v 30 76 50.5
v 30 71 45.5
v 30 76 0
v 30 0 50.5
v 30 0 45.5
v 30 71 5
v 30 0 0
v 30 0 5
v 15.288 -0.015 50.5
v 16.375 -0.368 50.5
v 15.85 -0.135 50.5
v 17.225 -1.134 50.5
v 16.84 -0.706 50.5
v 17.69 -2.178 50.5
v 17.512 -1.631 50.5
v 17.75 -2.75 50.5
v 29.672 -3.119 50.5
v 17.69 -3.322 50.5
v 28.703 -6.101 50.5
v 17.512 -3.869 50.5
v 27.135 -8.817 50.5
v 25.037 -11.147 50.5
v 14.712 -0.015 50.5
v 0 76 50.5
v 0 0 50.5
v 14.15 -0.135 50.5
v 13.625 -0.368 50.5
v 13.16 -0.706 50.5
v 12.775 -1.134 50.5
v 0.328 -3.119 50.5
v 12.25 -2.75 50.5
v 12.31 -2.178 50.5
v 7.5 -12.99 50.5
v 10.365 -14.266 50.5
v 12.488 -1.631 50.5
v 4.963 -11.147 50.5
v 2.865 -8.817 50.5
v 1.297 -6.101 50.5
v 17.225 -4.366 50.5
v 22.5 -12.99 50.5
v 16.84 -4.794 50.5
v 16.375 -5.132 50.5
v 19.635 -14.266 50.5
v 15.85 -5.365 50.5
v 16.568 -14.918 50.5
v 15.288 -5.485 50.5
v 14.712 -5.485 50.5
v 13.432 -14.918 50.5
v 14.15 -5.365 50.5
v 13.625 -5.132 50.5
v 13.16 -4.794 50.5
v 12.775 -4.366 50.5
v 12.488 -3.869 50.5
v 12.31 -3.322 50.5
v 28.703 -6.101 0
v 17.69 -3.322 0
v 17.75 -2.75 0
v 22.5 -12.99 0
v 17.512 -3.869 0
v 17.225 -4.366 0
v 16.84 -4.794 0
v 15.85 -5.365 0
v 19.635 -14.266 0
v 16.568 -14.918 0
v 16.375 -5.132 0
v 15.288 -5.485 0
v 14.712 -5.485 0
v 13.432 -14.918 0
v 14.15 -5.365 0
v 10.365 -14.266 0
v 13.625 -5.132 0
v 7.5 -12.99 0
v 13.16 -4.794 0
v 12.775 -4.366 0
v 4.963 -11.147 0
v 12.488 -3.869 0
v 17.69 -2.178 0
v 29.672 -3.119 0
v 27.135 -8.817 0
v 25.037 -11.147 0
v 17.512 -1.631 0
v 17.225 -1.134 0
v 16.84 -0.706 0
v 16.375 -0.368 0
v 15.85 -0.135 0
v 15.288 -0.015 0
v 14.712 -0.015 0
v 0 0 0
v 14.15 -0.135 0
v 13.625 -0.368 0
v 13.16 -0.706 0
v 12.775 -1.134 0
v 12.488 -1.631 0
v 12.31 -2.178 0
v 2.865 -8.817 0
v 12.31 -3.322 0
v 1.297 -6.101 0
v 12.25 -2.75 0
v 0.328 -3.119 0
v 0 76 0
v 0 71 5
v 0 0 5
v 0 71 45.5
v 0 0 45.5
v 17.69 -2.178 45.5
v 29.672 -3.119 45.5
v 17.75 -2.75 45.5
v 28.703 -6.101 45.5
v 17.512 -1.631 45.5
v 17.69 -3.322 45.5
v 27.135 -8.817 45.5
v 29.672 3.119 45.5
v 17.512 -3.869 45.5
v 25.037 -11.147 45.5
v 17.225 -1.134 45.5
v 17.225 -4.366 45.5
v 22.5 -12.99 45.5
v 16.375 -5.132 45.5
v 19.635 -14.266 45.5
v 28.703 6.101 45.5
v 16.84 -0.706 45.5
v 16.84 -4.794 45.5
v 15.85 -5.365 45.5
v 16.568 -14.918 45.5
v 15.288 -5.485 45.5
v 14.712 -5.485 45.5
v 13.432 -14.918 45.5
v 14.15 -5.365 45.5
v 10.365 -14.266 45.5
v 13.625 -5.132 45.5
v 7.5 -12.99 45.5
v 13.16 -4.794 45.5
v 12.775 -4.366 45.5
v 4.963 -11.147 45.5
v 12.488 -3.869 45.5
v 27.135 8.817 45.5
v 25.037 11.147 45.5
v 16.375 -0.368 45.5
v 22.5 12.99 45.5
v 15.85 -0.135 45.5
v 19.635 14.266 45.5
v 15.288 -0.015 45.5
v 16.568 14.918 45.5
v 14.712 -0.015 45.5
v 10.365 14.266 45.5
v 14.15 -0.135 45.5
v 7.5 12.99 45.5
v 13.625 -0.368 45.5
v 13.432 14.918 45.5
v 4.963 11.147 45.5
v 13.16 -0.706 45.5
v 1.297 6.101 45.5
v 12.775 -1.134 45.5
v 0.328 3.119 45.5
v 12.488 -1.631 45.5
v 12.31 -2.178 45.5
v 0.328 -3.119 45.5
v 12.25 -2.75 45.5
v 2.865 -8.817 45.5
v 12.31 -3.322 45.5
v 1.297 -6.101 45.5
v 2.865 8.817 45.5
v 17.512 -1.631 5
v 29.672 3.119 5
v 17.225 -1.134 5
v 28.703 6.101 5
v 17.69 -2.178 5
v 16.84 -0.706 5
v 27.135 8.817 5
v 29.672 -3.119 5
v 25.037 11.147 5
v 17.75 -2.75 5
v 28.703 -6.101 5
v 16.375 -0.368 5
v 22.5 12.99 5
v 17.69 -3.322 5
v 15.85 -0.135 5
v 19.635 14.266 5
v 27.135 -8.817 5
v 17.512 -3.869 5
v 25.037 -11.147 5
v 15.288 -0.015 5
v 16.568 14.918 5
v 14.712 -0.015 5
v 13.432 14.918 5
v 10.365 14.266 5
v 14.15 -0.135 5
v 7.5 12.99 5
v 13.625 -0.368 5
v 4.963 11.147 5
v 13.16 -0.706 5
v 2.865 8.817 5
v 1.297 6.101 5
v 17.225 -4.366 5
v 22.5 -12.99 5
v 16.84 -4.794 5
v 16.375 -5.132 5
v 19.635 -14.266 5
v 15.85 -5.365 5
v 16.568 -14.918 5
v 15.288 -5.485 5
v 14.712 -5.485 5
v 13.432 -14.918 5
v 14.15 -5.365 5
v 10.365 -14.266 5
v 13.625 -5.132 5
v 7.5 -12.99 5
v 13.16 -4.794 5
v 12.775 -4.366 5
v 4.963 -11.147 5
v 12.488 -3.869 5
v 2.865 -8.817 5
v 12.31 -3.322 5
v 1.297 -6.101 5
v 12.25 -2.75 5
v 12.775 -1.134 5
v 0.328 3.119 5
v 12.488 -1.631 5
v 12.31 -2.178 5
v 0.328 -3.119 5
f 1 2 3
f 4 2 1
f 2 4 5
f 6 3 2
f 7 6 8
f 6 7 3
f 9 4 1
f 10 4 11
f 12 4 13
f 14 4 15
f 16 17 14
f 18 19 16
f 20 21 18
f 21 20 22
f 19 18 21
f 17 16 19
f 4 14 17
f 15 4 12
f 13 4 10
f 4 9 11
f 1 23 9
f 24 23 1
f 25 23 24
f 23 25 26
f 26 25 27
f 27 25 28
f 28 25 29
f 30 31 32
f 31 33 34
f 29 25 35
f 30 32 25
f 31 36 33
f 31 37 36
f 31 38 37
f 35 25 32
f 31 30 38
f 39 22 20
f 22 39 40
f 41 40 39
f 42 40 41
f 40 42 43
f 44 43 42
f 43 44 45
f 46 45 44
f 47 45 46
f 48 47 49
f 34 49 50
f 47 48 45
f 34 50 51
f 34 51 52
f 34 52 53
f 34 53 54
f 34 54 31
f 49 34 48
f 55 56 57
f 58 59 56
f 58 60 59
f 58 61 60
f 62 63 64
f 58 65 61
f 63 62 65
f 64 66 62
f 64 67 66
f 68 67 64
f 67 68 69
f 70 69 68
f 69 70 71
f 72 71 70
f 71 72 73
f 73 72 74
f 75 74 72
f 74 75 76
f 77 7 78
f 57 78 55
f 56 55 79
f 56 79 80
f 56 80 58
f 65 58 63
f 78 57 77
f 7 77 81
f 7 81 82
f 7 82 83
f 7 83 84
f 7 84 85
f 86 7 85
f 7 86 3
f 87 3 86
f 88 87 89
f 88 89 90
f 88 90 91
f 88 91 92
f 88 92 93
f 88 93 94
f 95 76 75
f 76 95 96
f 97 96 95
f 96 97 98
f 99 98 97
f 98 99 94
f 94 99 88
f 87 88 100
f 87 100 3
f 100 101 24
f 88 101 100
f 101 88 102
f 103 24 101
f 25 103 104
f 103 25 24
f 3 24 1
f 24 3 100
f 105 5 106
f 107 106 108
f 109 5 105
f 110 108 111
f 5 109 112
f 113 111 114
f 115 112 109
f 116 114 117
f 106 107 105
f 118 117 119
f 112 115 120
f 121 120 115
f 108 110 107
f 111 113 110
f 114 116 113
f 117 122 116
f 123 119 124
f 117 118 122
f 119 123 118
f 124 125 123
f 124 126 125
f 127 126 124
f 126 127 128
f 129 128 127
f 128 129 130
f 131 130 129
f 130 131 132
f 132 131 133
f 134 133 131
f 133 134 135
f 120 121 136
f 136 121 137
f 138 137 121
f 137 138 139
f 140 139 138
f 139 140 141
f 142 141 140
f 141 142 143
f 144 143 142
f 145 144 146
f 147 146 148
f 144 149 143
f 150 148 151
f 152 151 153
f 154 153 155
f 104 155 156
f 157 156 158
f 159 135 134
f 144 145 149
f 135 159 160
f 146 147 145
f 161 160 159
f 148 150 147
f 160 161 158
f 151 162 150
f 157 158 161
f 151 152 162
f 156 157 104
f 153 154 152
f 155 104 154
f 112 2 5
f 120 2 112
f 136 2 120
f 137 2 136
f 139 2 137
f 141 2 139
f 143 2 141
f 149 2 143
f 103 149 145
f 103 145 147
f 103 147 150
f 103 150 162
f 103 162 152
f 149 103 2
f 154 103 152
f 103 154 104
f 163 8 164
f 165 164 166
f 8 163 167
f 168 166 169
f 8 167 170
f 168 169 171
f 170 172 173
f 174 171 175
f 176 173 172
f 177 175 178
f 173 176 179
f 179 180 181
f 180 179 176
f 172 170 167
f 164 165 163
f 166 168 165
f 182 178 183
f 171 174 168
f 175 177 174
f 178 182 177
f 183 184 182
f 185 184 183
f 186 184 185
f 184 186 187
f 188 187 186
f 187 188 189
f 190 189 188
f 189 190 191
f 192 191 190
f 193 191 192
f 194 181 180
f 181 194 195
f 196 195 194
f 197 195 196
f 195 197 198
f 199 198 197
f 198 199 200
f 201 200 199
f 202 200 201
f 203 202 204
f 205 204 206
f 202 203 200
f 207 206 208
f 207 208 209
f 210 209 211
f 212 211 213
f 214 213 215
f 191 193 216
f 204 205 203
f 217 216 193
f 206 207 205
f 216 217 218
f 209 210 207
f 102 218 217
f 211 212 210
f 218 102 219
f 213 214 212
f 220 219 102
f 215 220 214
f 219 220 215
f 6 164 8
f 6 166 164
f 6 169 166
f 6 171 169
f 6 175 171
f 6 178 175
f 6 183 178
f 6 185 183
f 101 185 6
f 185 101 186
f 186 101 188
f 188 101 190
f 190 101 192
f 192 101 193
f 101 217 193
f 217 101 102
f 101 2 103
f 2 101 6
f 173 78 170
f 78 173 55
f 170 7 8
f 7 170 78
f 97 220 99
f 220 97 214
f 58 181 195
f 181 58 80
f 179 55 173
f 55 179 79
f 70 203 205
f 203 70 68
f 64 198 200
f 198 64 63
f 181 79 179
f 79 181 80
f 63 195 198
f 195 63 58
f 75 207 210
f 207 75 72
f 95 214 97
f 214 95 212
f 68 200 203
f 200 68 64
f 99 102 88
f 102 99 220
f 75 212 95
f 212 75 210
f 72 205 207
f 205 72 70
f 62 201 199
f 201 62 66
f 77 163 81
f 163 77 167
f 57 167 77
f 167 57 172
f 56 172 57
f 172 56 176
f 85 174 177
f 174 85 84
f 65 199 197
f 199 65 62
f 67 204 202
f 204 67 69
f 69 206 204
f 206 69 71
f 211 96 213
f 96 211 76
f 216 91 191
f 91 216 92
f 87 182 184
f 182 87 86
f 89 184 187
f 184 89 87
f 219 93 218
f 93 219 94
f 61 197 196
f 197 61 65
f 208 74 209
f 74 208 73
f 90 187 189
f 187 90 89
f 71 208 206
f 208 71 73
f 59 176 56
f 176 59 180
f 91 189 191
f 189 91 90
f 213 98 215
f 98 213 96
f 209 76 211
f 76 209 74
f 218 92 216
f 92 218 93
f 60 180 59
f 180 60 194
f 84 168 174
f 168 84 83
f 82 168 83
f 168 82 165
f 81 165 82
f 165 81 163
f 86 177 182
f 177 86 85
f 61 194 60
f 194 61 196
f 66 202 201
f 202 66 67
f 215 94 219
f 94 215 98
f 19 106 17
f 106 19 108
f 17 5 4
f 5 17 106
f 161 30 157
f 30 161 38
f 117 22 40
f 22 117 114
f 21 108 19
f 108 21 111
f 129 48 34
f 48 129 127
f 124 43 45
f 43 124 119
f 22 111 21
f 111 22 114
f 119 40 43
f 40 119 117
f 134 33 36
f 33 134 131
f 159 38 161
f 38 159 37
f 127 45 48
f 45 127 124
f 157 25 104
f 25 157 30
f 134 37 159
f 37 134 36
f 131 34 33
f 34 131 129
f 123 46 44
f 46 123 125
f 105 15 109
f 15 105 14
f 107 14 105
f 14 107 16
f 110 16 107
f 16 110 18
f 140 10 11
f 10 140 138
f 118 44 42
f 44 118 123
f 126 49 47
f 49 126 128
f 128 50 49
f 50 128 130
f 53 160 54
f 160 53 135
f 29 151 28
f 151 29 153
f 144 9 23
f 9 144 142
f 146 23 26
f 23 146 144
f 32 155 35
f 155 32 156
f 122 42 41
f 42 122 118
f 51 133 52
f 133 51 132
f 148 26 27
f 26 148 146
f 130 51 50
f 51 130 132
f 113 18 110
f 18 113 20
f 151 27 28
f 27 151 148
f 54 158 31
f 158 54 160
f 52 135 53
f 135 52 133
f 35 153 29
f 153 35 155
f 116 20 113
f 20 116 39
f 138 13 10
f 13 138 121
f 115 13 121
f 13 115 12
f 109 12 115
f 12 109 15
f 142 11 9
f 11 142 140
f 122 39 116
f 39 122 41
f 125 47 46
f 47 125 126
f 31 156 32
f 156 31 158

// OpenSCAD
//rod
width  = 66;
height = 40.5;

//holder
length = 30;
thick  =  5;

//whirligig tube
diam   =  5.5;

$fn = 30;

module disc_hole() {
    difference() {
        cylinder(d = length, h =   thick);
        translate([0, -0.5*diam, -1])
        cylinder(d = diam,   h = 3*thick);
    }
}

difference() {
    cube([length, width+2*thick, height+2*thick]);
    translate([-150, -1, thick]) cube([300, width+thick+1, height]);
}
translate([0.5*length, 0, 0])
disc_hole();

translate([0.5*length, 0, height+thick])
disc_hole();
